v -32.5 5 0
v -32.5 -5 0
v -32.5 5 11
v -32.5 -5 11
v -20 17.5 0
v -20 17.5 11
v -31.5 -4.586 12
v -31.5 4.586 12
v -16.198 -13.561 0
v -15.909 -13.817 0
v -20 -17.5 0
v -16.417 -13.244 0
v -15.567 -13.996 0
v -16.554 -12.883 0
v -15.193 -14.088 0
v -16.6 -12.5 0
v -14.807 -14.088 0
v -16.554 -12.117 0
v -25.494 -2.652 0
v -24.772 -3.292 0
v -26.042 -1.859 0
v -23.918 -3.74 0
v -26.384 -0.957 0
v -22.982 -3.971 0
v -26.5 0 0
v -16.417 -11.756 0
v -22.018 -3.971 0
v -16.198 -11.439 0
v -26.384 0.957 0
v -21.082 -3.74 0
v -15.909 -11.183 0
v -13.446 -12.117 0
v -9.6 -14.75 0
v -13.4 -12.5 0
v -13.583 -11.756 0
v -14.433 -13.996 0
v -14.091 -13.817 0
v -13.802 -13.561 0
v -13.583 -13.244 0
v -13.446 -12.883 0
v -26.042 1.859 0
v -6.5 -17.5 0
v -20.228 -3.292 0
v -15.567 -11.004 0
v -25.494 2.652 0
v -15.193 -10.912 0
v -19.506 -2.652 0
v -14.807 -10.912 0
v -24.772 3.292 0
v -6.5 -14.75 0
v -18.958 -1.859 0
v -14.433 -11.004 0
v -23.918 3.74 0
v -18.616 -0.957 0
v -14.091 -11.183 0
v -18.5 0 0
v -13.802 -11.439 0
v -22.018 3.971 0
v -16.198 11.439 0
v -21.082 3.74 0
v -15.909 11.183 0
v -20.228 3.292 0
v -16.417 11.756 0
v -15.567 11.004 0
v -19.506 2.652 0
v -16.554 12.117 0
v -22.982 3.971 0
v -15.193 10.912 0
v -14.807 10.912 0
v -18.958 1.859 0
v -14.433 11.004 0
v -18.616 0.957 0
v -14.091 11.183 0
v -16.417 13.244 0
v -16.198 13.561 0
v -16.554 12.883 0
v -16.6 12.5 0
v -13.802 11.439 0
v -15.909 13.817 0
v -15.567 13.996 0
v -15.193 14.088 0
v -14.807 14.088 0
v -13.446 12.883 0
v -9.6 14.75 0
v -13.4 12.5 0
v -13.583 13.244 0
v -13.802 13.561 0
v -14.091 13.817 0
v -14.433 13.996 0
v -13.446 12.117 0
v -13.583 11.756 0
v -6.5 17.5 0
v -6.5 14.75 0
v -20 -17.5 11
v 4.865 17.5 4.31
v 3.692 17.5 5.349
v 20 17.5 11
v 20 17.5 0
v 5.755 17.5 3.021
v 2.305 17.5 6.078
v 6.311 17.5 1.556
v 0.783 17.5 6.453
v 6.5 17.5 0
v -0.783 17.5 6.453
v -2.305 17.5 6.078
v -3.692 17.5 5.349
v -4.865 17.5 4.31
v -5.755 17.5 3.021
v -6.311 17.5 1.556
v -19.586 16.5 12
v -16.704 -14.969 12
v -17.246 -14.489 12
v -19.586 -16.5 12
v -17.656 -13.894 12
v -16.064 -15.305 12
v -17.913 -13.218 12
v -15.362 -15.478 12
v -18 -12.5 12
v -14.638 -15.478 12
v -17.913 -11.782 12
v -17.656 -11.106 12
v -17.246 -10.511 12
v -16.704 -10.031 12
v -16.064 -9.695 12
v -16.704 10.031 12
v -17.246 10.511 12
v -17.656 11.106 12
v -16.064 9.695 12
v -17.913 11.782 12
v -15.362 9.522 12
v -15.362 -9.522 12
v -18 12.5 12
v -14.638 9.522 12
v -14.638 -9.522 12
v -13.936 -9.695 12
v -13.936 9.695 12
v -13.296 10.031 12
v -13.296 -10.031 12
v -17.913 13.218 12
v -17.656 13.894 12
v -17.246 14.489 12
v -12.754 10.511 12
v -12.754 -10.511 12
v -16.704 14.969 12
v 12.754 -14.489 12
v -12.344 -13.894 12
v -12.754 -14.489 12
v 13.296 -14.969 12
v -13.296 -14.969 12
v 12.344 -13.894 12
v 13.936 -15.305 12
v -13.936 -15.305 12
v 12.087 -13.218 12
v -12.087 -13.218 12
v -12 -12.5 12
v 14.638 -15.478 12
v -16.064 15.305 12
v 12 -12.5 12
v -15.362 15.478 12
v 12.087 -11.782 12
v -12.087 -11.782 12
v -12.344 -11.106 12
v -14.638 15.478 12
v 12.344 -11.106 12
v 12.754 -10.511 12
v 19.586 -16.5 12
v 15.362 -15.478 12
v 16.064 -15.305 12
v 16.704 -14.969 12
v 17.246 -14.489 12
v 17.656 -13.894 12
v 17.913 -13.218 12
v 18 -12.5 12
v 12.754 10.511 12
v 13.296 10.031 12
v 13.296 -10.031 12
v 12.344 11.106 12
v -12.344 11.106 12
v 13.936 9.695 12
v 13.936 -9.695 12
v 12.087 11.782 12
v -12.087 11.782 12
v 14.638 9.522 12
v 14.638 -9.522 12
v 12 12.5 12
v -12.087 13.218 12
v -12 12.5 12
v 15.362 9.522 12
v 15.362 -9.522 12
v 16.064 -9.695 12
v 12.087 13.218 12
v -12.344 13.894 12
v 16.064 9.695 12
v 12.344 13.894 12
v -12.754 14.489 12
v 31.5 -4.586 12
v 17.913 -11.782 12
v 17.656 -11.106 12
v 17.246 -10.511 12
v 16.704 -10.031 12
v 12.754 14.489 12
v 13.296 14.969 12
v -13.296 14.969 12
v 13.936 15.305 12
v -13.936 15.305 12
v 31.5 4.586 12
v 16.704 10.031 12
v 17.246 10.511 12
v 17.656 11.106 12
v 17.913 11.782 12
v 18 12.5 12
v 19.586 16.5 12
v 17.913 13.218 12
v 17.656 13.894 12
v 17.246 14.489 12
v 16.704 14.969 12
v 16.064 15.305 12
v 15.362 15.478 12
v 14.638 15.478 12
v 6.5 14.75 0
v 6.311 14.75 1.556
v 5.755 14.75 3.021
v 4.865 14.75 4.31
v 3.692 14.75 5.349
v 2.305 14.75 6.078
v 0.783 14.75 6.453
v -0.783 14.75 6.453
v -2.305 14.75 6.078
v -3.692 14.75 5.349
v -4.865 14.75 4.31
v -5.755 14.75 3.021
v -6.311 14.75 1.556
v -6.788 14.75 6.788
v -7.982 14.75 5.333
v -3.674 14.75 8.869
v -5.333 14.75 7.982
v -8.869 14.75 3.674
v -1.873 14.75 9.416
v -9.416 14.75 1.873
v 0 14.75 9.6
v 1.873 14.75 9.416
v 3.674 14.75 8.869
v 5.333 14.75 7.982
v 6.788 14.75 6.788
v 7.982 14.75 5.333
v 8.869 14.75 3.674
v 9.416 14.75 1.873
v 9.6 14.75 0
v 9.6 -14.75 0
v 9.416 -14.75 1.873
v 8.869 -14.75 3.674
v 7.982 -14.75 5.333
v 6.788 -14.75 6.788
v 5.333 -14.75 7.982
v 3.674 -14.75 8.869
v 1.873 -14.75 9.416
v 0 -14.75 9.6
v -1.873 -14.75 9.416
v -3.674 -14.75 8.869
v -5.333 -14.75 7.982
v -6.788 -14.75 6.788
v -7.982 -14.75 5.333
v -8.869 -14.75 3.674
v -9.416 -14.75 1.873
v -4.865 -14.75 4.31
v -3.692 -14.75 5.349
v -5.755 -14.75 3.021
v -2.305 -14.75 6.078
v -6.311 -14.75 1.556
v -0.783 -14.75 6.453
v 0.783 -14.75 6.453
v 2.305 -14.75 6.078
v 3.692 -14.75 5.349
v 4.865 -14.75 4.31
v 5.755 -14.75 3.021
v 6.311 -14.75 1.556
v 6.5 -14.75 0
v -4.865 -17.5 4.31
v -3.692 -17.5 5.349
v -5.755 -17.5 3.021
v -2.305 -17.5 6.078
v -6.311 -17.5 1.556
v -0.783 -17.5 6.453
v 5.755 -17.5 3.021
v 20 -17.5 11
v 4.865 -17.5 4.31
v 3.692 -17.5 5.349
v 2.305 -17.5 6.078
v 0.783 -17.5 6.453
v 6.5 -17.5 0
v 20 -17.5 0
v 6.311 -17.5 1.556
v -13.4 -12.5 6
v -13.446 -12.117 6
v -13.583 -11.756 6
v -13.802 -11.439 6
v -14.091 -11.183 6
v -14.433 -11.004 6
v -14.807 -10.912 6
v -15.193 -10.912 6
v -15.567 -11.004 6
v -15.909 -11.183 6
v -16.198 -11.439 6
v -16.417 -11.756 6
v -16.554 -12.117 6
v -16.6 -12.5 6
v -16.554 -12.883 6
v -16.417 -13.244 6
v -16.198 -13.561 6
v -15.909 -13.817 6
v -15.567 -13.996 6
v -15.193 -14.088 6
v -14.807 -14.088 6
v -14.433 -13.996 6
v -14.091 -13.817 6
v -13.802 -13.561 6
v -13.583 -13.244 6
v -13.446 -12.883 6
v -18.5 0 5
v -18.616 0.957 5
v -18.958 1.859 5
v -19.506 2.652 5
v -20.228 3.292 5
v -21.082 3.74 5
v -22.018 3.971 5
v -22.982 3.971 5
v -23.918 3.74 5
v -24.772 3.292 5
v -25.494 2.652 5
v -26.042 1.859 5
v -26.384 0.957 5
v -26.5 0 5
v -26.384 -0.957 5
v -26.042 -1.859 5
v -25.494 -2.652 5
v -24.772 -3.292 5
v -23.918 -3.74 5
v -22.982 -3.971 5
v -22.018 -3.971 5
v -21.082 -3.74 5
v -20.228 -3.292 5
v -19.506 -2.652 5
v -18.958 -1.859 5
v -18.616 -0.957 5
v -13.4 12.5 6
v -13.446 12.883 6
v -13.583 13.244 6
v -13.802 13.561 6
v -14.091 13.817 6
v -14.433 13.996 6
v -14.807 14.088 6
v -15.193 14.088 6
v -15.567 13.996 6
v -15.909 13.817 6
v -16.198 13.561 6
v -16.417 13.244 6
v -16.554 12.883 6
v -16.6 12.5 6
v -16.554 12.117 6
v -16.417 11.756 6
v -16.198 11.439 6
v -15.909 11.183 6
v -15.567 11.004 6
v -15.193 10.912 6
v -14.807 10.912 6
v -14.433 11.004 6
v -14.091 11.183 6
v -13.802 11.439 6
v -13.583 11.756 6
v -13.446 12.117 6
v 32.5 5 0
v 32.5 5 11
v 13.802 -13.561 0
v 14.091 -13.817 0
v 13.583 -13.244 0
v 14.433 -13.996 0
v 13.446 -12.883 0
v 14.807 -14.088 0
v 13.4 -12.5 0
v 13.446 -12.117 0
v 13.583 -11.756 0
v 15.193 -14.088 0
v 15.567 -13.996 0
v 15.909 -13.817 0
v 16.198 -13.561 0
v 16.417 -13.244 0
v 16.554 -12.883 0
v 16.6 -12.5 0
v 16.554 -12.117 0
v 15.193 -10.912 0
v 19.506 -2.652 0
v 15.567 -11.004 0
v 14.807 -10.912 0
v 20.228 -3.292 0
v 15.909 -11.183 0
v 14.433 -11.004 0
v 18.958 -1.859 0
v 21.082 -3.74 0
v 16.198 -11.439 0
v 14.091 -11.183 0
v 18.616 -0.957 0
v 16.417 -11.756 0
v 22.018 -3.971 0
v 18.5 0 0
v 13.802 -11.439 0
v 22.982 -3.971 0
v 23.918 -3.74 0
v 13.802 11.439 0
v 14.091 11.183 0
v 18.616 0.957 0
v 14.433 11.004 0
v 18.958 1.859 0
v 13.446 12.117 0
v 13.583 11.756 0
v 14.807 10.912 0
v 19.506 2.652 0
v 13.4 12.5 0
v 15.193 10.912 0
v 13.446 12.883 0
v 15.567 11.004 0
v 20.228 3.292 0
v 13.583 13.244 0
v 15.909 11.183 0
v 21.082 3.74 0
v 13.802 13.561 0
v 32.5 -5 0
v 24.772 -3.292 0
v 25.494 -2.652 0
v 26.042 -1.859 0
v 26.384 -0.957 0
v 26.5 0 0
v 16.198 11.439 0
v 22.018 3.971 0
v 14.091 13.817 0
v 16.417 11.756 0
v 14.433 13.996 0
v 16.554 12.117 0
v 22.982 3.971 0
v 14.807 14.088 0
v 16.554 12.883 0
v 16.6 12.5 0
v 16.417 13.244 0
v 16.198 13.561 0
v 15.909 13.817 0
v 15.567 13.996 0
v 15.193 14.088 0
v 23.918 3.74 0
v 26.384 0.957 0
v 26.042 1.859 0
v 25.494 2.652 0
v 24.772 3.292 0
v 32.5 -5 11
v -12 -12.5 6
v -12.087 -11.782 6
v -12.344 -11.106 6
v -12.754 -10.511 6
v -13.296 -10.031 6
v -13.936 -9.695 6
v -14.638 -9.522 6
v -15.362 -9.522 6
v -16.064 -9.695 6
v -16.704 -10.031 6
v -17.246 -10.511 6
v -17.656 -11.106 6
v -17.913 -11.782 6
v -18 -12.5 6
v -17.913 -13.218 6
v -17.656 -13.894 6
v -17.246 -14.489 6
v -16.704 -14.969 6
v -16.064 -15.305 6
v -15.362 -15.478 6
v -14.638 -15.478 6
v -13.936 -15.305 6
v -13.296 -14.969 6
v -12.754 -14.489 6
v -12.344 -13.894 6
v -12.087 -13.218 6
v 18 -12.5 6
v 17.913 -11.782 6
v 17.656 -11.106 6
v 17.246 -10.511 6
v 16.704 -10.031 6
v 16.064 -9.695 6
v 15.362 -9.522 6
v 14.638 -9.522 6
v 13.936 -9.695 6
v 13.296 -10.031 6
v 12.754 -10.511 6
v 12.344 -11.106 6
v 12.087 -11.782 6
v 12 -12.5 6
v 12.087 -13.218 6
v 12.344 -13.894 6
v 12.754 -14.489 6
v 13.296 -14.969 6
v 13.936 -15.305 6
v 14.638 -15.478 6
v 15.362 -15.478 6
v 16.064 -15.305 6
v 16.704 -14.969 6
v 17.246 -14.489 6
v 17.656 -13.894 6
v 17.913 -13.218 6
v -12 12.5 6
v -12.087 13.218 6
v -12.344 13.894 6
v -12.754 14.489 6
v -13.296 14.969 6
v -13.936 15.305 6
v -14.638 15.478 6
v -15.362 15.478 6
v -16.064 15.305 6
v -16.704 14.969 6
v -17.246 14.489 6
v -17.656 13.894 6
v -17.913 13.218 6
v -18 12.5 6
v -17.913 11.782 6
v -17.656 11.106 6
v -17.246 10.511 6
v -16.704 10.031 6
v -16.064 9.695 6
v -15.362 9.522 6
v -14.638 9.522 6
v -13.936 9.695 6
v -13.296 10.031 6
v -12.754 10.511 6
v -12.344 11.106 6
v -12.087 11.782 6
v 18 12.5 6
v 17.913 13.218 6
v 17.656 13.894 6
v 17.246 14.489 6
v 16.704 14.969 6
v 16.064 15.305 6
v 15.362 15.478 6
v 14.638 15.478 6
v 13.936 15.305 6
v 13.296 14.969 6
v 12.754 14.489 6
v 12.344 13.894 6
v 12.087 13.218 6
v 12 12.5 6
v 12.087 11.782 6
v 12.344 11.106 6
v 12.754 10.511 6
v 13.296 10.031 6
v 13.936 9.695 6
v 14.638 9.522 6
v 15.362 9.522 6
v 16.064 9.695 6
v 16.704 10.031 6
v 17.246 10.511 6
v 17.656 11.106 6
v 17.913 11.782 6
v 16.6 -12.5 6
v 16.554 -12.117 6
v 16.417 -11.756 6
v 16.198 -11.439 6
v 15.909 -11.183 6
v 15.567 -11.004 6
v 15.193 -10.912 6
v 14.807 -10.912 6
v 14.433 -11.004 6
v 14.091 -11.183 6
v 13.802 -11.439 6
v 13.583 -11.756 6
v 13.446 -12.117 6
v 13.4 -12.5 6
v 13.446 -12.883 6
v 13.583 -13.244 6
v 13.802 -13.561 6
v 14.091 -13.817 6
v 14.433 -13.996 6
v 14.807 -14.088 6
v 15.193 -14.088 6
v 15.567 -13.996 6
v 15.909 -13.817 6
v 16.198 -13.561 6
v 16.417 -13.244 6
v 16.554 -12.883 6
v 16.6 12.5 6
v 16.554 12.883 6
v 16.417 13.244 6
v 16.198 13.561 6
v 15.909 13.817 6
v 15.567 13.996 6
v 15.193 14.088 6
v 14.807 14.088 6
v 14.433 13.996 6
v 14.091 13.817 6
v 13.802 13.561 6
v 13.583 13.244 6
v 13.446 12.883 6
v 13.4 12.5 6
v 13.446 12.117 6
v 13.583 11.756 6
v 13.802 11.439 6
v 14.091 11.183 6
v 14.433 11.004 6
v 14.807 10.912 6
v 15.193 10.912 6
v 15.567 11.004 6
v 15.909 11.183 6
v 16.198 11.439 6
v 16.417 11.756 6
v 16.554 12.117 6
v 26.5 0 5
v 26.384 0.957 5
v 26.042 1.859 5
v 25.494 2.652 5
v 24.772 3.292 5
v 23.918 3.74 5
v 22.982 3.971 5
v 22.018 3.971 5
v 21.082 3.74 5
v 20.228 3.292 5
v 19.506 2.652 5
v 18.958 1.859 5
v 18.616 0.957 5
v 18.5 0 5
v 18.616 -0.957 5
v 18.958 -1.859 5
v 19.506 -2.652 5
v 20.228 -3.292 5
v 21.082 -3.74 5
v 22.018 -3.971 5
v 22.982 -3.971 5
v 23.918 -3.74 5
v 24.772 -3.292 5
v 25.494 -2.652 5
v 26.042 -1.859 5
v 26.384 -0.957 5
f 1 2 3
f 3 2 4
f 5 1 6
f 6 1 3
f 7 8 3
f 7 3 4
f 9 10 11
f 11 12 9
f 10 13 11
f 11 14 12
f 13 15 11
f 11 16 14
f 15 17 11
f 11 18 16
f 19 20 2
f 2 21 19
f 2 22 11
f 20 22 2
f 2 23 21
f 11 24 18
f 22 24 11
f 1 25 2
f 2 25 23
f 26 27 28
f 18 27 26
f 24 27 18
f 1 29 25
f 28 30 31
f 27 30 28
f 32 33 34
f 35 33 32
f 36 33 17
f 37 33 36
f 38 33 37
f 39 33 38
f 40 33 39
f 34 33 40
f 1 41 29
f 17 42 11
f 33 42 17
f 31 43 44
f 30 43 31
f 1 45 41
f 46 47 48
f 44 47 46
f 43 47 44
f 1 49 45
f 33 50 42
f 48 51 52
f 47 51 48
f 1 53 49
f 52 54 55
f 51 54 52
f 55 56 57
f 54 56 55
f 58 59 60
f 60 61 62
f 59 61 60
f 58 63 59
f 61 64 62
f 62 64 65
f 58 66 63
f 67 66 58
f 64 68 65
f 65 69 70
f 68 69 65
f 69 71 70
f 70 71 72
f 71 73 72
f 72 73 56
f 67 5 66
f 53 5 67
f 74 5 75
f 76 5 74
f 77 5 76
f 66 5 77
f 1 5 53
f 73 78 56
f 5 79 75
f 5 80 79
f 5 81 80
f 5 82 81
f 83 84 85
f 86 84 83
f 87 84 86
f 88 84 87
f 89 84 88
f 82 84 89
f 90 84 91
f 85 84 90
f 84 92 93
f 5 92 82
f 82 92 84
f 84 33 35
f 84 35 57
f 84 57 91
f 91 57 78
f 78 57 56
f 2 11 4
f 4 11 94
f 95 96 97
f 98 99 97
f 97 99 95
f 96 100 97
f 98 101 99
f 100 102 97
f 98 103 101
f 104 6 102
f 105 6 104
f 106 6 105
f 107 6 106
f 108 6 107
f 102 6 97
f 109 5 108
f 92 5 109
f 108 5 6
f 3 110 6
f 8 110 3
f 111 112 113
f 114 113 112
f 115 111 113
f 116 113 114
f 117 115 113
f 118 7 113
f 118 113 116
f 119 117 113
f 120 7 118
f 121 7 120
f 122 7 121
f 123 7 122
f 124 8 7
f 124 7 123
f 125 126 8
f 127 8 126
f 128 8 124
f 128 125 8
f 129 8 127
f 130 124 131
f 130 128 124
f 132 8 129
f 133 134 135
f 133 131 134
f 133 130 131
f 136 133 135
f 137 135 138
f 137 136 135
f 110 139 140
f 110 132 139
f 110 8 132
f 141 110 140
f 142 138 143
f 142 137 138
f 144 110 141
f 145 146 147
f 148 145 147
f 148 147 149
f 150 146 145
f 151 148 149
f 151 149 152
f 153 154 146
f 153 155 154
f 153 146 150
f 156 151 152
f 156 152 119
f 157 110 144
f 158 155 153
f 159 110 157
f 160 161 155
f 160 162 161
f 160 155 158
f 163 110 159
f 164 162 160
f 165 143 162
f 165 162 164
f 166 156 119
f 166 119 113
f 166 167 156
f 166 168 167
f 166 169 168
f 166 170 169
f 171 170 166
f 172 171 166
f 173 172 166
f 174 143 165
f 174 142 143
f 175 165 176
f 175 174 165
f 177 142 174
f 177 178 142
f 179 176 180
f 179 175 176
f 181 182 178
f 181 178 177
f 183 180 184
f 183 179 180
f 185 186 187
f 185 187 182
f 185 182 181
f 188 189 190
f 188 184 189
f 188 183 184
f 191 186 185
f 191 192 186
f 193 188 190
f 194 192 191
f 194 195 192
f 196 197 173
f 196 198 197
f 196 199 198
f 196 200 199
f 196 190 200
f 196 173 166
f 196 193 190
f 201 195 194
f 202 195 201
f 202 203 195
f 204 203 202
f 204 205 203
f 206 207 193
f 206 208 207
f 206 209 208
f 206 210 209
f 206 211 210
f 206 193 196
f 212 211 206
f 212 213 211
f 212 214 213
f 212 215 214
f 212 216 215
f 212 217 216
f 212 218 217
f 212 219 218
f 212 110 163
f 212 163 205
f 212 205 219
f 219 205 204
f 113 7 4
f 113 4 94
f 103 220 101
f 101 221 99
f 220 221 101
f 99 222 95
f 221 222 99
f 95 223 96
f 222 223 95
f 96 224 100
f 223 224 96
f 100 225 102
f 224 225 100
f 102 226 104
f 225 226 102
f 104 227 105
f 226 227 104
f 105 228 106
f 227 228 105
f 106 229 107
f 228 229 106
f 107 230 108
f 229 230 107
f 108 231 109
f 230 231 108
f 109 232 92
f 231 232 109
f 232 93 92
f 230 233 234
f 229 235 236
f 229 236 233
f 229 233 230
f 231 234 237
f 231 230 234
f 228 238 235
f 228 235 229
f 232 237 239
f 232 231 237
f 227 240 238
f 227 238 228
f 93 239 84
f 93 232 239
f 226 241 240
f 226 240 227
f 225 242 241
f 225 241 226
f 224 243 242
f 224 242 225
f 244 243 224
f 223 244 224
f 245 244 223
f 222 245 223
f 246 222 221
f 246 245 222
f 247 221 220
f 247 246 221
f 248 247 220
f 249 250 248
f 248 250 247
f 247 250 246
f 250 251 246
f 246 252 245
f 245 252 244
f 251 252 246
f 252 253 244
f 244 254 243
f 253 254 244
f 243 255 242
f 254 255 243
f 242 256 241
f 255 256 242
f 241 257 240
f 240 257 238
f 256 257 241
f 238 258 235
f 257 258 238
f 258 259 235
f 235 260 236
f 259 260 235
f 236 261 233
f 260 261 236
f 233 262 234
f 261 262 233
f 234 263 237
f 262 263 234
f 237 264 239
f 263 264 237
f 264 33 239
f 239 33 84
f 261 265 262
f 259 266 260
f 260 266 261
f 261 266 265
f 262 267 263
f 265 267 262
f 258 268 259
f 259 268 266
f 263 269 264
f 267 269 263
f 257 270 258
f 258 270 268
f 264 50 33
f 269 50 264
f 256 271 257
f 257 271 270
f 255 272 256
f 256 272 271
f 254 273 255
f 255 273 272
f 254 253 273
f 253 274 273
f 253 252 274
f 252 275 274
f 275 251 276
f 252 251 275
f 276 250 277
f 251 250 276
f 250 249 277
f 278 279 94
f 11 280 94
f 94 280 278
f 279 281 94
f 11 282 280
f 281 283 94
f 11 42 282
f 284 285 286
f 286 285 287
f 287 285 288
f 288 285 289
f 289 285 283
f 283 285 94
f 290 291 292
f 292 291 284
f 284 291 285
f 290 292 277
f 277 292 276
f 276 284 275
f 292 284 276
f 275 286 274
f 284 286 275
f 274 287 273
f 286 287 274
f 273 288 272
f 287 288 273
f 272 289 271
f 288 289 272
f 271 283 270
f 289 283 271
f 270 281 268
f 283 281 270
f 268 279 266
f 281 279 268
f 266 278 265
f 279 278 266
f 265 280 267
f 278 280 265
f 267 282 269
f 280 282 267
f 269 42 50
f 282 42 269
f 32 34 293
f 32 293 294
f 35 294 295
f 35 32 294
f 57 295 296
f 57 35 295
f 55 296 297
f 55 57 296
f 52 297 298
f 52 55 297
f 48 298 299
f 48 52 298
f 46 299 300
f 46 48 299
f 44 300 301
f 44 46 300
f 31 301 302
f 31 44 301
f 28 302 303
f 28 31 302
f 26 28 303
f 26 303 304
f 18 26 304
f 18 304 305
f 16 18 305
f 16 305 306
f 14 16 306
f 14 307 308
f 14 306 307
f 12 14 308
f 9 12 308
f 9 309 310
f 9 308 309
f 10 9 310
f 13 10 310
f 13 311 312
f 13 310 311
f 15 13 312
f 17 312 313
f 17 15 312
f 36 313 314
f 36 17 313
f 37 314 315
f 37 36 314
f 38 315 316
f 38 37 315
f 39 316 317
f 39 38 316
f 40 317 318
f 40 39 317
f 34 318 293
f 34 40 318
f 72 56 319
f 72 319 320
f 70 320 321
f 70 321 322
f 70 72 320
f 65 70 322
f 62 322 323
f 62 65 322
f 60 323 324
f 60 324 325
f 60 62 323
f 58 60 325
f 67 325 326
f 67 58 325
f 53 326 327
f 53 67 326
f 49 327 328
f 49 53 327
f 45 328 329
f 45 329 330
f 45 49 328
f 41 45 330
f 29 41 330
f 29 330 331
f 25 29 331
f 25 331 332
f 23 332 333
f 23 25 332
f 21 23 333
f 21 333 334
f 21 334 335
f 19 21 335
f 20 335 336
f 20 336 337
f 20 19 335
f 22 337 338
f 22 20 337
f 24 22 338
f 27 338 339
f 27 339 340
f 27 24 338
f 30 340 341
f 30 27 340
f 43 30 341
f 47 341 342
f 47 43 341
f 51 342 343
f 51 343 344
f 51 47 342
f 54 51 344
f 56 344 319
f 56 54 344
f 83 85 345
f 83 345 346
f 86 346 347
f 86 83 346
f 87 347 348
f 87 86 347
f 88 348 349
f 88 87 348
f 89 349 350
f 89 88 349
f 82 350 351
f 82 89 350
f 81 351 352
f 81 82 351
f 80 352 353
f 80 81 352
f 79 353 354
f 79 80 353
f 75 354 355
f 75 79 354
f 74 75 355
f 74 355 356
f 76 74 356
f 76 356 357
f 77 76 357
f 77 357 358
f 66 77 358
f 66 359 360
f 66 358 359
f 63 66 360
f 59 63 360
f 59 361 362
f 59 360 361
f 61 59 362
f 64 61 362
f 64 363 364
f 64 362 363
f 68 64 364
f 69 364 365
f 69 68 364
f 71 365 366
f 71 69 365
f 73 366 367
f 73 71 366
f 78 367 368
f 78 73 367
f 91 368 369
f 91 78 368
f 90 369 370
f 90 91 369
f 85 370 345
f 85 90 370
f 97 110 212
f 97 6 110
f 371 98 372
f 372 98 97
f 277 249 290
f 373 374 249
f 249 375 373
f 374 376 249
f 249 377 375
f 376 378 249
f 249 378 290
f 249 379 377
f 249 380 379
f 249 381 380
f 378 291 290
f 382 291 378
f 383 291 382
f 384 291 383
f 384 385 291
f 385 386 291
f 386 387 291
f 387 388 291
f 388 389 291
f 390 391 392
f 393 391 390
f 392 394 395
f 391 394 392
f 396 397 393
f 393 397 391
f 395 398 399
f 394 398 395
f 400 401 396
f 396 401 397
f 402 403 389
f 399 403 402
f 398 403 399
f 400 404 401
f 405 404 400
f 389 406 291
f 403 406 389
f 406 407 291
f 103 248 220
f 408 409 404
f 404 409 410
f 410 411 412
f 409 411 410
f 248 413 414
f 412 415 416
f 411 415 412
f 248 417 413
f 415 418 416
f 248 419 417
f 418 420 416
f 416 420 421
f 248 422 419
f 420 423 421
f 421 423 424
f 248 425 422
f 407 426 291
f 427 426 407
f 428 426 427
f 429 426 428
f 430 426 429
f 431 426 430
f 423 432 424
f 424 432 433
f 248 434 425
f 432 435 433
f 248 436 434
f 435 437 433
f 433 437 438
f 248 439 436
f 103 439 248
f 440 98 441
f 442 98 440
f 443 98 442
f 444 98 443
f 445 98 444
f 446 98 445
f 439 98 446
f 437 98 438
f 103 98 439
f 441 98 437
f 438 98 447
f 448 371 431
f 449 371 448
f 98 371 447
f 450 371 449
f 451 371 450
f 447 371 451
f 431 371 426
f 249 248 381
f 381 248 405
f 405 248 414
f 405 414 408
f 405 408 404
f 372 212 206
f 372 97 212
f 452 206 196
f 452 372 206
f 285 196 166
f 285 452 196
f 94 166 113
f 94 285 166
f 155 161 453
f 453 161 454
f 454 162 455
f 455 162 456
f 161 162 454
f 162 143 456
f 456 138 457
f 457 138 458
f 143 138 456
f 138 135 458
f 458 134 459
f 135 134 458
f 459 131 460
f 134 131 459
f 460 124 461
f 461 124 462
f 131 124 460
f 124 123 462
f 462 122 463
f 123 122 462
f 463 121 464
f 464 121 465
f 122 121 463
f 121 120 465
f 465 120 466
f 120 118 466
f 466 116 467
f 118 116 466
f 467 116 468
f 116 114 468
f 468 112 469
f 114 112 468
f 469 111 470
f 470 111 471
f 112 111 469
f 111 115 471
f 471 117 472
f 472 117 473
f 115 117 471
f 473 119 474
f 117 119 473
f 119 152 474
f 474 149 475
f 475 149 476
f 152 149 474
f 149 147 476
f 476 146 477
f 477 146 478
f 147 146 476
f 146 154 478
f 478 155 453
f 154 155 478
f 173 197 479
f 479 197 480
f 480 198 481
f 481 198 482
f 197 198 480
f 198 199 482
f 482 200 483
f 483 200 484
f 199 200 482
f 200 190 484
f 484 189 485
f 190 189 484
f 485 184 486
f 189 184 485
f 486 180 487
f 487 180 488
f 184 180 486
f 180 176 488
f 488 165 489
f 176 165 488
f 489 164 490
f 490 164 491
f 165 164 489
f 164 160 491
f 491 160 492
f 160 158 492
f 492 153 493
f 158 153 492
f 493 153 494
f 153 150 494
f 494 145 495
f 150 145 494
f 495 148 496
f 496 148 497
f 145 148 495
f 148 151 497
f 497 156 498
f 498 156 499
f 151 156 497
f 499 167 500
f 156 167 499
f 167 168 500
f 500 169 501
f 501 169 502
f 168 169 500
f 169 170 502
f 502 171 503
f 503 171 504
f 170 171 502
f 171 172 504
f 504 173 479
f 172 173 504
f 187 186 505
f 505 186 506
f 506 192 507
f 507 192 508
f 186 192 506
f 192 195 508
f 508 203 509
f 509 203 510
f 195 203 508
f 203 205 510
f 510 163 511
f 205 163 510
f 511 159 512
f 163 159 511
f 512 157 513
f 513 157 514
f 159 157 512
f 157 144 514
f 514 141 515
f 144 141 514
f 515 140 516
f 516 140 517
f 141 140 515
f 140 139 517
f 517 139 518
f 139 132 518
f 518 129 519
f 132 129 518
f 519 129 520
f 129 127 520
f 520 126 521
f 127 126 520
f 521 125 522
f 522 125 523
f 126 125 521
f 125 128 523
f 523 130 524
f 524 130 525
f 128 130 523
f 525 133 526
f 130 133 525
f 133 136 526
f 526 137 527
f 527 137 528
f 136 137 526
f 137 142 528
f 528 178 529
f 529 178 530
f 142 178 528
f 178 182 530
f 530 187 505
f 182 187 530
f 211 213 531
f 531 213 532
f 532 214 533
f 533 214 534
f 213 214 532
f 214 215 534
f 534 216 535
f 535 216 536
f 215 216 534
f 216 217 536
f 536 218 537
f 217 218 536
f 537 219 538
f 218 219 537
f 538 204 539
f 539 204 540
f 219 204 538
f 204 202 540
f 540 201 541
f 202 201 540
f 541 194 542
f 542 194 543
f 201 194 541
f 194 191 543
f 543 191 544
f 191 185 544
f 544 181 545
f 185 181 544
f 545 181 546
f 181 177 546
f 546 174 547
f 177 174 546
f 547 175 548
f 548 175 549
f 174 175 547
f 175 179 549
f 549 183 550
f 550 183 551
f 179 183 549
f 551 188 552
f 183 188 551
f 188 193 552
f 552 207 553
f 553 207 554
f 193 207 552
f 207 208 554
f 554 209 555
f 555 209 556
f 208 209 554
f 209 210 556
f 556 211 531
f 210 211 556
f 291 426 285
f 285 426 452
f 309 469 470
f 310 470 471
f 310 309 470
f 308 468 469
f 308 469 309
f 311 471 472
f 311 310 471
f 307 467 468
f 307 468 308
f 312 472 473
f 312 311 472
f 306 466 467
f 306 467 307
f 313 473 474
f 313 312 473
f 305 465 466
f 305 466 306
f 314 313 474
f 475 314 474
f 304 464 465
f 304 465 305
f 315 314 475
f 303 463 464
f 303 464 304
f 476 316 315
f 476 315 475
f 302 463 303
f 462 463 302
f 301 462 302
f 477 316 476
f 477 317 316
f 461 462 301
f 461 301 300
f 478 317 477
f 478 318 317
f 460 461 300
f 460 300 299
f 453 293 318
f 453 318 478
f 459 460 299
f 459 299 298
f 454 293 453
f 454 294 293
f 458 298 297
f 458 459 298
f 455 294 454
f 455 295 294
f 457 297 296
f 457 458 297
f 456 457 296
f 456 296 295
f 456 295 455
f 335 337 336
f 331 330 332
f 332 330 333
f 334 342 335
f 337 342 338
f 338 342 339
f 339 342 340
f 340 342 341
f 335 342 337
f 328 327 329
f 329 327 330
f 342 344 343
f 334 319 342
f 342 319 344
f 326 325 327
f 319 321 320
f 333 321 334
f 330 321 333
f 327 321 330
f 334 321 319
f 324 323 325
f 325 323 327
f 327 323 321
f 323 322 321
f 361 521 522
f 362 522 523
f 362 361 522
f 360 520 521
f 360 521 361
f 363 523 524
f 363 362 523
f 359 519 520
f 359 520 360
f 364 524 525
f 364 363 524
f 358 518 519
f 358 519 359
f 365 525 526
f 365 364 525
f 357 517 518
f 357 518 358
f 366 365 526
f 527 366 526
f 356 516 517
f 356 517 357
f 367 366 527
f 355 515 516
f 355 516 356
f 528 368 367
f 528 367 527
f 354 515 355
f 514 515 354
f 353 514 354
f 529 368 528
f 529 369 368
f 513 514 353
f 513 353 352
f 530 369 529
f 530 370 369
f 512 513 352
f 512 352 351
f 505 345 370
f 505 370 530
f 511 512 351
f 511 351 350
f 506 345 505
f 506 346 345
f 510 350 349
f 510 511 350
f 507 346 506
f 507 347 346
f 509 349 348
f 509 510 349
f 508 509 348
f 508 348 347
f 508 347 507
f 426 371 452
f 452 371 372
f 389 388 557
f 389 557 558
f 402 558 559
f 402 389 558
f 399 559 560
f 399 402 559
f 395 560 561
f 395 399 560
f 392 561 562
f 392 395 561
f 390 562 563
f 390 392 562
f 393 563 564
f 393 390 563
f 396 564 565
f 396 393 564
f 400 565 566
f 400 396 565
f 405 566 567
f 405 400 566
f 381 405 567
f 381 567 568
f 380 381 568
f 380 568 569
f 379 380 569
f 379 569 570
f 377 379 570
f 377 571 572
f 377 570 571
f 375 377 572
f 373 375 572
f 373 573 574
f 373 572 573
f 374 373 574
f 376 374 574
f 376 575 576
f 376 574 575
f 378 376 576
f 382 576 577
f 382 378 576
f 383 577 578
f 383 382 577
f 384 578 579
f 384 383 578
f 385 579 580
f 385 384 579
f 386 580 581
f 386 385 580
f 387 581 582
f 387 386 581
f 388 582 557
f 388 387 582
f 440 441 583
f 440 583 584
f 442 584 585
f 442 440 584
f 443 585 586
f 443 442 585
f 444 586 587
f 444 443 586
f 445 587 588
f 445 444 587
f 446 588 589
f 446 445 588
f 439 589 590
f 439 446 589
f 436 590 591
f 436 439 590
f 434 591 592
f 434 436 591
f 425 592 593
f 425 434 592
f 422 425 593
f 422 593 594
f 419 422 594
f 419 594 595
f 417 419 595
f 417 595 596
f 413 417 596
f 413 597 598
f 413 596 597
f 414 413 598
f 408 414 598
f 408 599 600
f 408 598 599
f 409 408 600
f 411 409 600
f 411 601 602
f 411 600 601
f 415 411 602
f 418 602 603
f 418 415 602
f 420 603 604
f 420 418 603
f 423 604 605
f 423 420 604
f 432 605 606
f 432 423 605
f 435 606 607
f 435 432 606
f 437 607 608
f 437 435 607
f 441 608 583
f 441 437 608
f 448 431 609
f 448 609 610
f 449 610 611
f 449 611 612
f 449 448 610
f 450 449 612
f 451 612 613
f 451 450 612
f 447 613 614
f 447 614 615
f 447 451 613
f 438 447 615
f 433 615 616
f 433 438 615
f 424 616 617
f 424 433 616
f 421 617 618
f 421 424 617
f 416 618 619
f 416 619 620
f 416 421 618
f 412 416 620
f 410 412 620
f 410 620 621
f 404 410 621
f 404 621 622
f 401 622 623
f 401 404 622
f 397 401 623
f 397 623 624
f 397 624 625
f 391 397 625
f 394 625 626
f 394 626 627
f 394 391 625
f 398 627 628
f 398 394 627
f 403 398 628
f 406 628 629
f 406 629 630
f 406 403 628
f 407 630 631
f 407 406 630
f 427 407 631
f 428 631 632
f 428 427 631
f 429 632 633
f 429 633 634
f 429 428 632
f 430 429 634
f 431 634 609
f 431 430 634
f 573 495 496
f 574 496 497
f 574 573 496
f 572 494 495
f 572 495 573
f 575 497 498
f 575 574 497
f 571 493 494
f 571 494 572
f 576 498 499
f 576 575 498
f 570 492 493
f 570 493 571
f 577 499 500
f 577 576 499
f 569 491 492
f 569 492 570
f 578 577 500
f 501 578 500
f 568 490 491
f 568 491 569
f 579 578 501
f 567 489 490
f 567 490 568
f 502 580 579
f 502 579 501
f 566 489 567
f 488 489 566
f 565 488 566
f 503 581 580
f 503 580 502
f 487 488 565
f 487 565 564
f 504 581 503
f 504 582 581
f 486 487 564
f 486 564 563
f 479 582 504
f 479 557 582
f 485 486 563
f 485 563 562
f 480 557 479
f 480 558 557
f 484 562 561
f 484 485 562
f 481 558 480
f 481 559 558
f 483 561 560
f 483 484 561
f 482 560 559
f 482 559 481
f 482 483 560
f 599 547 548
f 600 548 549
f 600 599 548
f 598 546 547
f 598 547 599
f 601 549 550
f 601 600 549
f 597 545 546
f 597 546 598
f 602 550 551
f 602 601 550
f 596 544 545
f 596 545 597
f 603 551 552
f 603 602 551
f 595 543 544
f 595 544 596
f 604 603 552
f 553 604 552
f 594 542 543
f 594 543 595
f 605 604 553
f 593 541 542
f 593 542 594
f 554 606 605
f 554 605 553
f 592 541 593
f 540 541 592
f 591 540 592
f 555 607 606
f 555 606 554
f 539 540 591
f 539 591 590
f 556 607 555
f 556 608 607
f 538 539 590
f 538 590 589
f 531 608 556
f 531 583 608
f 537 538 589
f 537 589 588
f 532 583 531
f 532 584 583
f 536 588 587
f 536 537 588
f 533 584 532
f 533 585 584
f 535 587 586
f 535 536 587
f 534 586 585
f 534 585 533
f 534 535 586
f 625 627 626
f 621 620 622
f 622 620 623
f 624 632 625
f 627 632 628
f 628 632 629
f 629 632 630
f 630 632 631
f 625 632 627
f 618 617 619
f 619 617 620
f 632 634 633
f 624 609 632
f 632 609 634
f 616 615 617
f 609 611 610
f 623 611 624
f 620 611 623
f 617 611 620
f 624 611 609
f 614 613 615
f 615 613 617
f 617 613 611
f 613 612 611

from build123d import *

# Parameters (mm, degrees)
SKETCH_R          = 1.6
PAD_DEPTH         = 12
SKETCH001_R       = 6.5
POCKET_DEPTH      = 17.501
POCKET_DEPTH_BACK = -17.501
SKETCH002_R       = 9.6
POCKET001_DEPTH   = 14.75
SKETCH003_R       = 3
POCKET002_DEPTH   = 6
SKETCH004_R       = 4
POCKET003_DEPTH   = 5
CHAMFER_SIZE      = 1


with BuildPart() as part:
    # Sketch → Pad (new body)
    with BuildSketch(Plane.XY):
        Polygon((-32.5, 5), (-32.5, -5), (-20, -17.5), (20, -17.5), (32.5, -5), (32.5, 5), (20, 17.5), (-20, 17.5), align=None)
        with Locations((-15, 12.5)):
            Circle(SKETCH_R, mode=Mode.SUBTRACT)
        with Locations((15, 12.5)):
            Circle(SKETCH_R, mode=Mode.SUBTRACT)
        with Locations((-15, -12.5)):
            Circle(SKETCH_R, mode=Mode.SUBTRACT)
        with Locations((15, -12.5)):
            Circle(SKETCH_R, mode=Mode.SUBTRACT)
    extrude(amount=PAD_DEPTH)

    # Sketch001 → Pocket (cut, two sides)
    with BuildSketch(Plane.XZ) as pocket_sk:
        Circle(SKETCH001_R)
    extrude(amount=-POCKET_DEPTH, mode=Mode.SUBTRACT)
    extrude(pocket_sk.sketch, amount=-POCKET_DEPTH_BACK, mode=Mode.SUBTRACT)

    # Sketch002 → Pocket001 (cut, symmetric)
    with BuildSketch(Plane.XZ):
        Circle(SKETCH002_R)
    extrude(amount=POCKET001_DEPTH, both=True, mode=Mode.SUBTRACT)

    # Sketch003 (on Face5 of Pocket001) → Pocket002 (cut)
    with BuildSketch(Plane.XY.offset(12)):
        with Locations((-15, 12.5)):
            Circle(SKETCH003_R)
        with Locations((15, 12.5)):
            Circle(SKETCH003_R)
        with Locations((-15, -12.5)):
            Circle(SKETCH003_R)
        with Locations((15, -12.5)):
            Circle(SKETCH003_R)
    extrude(amount=-POCKET002_DEPTH, mode=Mode.SUBTRACT)

    # Sketch004 → Pocket003 (cut)
    with BuildSketch(Plane.XY):
        with Locations((-22.5, 0)):
            Circle(SKETCH004_R)
        with Locations((22.5, 0)):
            Circle(SKETCH004_R)
    extrude(amount=POCKET003_DEPTH, mode=Mode.SUBTRACT)

    # Chamfer
    chamfer_edges = [part.edges().sort_by_distance(p)[0] for p in [
        (0, 17.5, 12),
        (-26.25, 11.25, 12),
        (-32.5, 0, 12),
        (-26.25, -11.25, 12),
        (0, -17.5, 12),
        (26.25, -11.25, 12),
        (32.5, 0, 12),
        (26.25, 11.25, 12),
    ]]
    chamfer(chamfer_edges, length=CHAMFER_SIZE)


solid = part.part
